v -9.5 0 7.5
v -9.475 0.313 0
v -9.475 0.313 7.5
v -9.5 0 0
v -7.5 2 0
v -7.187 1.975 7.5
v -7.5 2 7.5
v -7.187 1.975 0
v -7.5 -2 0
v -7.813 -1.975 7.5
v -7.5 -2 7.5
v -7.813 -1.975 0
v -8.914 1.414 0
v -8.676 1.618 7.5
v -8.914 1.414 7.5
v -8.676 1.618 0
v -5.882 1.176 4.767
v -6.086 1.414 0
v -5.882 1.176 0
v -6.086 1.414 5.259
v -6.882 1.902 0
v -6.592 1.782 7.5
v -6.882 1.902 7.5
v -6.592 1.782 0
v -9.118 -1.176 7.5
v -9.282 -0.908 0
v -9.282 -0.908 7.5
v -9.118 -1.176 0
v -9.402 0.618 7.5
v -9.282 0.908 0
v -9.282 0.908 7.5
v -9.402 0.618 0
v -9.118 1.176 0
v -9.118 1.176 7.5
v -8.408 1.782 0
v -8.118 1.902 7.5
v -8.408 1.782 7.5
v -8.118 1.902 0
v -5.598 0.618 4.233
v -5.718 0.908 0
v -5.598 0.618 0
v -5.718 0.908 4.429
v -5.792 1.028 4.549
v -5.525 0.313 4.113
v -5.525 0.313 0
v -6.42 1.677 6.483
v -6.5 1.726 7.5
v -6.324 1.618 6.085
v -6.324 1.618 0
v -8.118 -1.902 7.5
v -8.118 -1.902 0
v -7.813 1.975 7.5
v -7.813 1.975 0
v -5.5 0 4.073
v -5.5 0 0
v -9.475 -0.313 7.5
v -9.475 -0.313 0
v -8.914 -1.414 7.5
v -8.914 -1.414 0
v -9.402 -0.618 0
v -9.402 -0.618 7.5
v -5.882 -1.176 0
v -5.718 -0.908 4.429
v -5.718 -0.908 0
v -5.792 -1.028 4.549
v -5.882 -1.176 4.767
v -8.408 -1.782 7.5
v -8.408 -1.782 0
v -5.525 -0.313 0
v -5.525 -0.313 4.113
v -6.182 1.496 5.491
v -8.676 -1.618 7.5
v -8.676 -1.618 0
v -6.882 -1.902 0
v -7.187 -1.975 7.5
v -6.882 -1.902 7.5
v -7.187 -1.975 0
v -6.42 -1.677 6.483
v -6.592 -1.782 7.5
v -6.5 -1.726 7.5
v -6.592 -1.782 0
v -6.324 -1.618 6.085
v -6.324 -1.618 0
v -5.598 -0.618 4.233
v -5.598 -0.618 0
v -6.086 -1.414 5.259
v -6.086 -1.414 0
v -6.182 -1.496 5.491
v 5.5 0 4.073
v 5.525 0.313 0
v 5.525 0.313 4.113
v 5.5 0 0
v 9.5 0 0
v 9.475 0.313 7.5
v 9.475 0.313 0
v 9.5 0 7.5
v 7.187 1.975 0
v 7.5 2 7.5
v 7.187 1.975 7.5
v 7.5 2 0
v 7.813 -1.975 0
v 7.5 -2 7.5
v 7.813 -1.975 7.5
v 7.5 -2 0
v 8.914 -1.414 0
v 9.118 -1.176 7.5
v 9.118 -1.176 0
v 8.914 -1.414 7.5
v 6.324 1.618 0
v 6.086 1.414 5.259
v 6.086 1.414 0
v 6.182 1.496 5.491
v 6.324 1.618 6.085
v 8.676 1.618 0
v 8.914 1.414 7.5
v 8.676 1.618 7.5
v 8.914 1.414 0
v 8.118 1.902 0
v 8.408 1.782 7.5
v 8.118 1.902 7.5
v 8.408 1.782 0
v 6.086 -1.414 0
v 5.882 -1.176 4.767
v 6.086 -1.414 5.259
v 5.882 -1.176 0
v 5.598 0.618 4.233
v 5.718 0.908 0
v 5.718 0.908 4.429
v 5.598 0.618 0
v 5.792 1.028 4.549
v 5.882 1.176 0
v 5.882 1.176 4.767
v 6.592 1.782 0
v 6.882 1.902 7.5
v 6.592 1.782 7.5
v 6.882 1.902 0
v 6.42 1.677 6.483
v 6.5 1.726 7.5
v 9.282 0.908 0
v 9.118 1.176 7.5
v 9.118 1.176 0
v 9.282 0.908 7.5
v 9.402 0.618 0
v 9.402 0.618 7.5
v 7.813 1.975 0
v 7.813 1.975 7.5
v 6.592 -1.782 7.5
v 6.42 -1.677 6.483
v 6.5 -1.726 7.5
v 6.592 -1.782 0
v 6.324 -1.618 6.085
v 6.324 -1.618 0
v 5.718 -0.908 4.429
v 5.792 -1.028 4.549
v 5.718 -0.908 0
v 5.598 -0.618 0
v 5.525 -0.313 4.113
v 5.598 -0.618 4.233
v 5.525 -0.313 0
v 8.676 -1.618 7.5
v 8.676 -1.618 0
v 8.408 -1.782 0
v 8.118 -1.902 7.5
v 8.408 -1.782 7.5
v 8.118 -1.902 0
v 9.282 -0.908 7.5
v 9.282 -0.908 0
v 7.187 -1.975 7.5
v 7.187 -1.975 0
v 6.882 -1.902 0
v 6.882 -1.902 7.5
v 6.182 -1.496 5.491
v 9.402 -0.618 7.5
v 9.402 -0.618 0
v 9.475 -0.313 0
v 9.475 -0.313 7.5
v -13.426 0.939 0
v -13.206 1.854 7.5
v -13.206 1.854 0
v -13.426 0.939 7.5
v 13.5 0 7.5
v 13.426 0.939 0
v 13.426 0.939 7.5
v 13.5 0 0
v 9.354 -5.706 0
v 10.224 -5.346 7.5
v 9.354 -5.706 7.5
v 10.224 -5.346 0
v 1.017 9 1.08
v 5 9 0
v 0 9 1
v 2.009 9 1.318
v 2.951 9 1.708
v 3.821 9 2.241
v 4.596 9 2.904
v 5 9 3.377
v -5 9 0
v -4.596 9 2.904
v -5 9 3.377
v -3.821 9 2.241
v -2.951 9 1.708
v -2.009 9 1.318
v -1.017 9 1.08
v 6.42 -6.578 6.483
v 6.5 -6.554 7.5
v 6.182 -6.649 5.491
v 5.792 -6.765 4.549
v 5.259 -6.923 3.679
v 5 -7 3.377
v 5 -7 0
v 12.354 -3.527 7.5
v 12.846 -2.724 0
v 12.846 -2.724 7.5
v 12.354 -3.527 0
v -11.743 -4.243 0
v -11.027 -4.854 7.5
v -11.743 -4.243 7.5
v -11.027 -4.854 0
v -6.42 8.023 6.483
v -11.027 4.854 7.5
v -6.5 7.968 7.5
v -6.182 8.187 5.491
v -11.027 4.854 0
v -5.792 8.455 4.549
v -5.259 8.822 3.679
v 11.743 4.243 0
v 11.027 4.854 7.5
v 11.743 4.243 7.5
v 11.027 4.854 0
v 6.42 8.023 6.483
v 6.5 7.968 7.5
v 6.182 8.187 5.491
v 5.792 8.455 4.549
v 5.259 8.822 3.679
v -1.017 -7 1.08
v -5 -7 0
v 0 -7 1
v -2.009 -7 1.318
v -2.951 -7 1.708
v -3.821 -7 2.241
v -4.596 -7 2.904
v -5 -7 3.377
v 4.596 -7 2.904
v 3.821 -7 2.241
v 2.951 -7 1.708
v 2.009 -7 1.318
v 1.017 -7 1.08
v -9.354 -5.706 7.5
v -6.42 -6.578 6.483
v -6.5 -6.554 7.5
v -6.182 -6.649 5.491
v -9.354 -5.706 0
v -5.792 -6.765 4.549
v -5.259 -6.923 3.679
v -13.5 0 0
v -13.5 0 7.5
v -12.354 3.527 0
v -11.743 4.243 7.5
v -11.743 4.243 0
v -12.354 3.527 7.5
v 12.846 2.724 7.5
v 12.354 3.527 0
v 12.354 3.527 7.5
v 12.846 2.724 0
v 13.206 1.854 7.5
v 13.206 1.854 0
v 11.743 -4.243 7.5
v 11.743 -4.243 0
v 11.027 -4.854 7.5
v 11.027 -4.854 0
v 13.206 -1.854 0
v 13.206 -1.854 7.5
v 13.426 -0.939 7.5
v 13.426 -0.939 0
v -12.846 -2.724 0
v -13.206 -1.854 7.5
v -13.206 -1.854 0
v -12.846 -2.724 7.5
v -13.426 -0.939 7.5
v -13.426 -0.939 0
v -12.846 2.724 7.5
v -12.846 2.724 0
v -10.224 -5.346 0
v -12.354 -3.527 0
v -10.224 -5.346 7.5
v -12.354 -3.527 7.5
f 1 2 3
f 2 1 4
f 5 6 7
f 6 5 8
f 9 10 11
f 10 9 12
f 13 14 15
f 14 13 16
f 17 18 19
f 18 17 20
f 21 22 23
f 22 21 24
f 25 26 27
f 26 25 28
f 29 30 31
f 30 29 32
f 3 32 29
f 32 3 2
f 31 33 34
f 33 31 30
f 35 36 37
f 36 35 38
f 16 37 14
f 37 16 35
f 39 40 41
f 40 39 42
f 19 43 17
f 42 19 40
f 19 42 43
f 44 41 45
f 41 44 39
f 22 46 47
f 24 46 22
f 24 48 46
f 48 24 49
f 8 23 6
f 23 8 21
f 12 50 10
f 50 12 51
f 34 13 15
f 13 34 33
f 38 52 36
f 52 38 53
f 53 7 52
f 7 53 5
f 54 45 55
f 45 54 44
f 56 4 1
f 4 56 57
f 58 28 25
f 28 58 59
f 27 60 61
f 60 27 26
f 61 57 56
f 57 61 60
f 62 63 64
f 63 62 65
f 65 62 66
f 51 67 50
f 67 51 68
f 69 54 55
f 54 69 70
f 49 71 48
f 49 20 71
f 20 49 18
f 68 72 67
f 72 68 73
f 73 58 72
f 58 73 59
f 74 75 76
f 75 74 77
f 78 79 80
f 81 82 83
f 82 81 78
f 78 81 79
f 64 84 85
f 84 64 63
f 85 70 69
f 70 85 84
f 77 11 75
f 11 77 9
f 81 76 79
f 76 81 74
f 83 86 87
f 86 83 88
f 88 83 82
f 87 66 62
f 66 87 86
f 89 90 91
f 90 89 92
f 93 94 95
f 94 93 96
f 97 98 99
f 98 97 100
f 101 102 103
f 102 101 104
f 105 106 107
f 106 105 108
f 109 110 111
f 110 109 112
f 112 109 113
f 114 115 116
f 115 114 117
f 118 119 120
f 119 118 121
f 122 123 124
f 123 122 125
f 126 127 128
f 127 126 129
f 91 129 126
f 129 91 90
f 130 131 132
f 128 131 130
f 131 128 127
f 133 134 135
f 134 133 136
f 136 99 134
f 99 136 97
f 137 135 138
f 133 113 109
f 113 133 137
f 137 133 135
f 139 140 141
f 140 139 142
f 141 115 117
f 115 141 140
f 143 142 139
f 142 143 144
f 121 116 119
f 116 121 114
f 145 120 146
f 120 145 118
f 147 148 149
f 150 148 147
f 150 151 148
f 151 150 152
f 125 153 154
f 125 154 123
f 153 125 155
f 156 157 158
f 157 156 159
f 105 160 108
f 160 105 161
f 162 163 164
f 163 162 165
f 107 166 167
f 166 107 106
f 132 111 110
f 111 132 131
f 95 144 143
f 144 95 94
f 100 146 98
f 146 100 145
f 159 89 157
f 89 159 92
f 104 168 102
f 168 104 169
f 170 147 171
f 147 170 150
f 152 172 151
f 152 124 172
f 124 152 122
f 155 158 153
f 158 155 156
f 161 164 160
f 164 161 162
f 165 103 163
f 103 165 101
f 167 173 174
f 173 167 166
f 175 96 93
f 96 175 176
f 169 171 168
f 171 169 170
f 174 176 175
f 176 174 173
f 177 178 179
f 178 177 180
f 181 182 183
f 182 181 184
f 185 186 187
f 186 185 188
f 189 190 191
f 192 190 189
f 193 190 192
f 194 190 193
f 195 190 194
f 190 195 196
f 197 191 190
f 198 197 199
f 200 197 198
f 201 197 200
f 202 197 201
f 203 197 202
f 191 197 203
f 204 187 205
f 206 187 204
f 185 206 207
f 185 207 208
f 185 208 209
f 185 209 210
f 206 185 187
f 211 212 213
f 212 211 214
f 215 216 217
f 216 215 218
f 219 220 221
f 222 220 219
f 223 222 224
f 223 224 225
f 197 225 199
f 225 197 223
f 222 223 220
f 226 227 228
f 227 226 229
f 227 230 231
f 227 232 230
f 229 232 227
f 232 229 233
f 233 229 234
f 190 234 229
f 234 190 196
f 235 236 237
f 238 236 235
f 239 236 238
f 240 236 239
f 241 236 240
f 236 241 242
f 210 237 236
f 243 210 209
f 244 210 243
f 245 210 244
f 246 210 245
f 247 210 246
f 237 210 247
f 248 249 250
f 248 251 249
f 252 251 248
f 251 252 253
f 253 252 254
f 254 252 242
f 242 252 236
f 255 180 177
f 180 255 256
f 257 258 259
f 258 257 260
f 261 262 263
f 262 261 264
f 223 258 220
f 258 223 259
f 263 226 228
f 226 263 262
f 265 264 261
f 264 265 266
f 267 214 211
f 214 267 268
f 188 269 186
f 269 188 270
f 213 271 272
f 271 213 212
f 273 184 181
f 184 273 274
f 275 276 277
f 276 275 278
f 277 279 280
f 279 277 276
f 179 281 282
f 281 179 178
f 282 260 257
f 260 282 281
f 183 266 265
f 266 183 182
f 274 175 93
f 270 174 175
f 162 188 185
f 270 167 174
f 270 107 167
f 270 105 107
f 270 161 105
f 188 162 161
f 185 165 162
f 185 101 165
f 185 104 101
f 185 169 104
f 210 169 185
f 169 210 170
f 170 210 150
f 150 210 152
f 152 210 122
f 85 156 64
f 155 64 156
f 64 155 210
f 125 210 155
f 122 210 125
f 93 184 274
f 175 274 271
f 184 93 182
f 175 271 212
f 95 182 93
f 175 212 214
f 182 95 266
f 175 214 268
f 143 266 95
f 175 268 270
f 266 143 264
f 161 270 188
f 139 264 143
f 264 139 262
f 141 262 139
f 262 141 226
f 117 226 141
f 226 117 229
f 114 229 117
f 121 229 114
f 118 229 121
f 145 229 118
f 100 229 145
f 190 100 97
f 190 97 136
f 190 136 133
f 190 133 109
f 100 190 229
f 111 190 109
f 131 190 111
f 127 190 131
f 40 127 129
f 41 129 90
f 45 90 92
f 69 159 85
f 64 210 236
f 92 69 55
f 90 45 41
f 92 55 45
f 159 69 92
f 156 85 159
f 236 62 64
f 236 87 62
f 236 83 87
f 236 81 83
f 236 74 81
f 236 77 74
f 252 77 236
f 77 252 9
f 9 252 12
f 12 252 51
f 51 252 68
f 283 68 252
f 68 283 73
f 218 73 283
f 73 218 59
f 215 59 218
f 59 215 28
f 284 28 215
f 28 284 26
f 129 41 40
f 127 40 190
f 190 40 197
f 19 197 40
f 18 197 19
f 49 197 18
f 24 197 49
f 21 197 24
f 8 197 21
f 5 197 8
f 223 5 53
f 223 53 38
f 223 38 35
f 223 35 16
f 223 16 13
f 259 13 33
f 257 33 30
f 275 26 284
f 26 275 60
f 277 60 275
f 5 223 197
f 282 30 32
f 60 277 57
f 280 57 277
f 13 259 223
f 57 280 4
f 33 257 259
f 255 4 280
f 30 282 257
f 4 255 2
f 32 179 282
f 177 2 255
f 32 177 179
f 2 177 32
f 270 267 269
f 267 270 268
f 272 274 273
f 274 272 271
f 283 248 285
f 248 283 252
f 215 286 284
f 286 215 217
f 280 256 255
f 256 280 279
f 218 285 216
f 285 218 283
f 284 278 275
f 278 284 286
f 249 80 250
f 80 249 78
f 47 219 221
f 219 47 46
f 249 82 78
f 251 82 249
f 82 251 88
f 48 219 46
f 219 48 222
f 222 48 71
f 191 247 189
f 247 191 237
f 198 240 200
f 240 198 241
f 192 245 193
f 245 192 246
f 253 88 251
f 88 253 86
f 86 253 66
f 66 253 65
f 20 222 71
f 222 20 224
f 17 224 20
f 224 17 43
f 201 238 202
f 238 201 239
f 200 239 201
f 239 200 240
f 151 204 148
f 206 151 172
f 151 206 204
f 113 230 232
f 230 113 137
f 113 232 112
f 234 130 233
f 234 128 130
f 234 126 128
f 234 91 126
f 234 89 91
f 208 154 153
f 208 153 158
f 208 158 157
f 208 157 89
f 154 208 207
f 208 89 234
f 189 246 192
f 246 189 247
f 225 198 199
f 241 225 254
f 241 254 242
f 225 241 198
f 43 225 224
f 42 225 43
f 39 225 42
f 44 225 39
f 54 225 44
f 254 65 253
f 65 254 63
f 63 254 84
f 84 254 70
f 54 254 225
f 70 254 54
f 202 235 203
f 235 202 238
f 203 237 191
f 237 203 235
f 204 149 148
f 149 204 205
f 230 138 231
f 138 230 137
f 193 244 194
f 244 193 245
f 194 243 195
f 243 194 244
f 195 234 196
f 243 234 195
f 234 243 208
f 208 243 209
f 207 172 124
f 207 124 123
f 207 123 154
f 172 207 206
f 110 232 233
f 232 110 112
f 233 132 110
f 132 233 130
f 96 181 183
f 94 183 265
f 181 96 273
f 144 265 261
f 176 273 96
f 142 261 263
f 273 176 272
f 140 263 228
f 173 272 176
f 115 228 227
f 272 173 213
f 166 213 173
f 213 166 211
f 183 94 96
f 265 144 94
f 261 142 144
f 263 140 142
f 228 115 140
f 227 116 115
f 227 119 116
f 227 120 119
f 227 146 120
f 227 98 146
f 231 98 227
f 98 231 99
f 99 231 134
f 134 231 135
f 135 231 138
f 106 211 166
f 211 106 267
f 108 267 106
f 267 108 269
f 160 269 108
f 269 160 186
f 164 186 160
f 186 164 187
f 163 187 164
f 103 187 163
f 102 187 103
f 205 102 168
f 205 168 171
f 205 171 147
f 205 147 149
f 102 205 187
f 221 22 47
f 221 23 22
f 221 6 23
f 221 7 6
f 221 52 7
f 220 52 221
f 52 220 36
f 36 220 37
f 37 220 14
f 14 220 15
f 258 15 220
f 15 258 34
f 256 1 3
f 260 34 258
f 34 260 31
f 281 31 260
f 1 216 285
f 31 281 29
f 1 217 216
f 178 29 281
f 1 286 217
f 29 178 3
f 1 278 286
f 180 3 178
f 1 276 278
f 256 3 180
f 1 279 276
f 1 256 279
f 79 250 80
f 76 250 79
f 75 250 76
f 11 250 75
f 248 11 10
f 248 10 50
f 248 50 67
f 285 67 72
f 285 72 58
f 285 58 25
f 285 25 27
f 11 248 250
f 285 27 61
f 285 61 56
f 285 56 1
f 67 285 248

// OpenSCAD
//This is the cable clamp used on the extruder cables
$fn = 40;

translate([0,0,16])
    rotate([0,180,0])
        difference(){
            hull(){
                translate([15/2,0,0]){
                    cylinder(16,6,6);
                }
                translate([-15/2,0,0]){
                    cylinder(16,6,6);
                }
                translate([-5,-7,0])
                    cube([10,16,16],false);
            }

            union(){
                translate([15/2,0,0]){
                    cylinder(18,2,2);
                }
                translate([-15/2,0,0]){
                    cylinder(18,2,2);
                }
            }


            translate([0,20,17/2])
                rotate([90,0,0])
                    #cylinder(50,6.5,6.5);

            translate([-50,-50,0])
                cube([100,100,17/2], false);
        }
